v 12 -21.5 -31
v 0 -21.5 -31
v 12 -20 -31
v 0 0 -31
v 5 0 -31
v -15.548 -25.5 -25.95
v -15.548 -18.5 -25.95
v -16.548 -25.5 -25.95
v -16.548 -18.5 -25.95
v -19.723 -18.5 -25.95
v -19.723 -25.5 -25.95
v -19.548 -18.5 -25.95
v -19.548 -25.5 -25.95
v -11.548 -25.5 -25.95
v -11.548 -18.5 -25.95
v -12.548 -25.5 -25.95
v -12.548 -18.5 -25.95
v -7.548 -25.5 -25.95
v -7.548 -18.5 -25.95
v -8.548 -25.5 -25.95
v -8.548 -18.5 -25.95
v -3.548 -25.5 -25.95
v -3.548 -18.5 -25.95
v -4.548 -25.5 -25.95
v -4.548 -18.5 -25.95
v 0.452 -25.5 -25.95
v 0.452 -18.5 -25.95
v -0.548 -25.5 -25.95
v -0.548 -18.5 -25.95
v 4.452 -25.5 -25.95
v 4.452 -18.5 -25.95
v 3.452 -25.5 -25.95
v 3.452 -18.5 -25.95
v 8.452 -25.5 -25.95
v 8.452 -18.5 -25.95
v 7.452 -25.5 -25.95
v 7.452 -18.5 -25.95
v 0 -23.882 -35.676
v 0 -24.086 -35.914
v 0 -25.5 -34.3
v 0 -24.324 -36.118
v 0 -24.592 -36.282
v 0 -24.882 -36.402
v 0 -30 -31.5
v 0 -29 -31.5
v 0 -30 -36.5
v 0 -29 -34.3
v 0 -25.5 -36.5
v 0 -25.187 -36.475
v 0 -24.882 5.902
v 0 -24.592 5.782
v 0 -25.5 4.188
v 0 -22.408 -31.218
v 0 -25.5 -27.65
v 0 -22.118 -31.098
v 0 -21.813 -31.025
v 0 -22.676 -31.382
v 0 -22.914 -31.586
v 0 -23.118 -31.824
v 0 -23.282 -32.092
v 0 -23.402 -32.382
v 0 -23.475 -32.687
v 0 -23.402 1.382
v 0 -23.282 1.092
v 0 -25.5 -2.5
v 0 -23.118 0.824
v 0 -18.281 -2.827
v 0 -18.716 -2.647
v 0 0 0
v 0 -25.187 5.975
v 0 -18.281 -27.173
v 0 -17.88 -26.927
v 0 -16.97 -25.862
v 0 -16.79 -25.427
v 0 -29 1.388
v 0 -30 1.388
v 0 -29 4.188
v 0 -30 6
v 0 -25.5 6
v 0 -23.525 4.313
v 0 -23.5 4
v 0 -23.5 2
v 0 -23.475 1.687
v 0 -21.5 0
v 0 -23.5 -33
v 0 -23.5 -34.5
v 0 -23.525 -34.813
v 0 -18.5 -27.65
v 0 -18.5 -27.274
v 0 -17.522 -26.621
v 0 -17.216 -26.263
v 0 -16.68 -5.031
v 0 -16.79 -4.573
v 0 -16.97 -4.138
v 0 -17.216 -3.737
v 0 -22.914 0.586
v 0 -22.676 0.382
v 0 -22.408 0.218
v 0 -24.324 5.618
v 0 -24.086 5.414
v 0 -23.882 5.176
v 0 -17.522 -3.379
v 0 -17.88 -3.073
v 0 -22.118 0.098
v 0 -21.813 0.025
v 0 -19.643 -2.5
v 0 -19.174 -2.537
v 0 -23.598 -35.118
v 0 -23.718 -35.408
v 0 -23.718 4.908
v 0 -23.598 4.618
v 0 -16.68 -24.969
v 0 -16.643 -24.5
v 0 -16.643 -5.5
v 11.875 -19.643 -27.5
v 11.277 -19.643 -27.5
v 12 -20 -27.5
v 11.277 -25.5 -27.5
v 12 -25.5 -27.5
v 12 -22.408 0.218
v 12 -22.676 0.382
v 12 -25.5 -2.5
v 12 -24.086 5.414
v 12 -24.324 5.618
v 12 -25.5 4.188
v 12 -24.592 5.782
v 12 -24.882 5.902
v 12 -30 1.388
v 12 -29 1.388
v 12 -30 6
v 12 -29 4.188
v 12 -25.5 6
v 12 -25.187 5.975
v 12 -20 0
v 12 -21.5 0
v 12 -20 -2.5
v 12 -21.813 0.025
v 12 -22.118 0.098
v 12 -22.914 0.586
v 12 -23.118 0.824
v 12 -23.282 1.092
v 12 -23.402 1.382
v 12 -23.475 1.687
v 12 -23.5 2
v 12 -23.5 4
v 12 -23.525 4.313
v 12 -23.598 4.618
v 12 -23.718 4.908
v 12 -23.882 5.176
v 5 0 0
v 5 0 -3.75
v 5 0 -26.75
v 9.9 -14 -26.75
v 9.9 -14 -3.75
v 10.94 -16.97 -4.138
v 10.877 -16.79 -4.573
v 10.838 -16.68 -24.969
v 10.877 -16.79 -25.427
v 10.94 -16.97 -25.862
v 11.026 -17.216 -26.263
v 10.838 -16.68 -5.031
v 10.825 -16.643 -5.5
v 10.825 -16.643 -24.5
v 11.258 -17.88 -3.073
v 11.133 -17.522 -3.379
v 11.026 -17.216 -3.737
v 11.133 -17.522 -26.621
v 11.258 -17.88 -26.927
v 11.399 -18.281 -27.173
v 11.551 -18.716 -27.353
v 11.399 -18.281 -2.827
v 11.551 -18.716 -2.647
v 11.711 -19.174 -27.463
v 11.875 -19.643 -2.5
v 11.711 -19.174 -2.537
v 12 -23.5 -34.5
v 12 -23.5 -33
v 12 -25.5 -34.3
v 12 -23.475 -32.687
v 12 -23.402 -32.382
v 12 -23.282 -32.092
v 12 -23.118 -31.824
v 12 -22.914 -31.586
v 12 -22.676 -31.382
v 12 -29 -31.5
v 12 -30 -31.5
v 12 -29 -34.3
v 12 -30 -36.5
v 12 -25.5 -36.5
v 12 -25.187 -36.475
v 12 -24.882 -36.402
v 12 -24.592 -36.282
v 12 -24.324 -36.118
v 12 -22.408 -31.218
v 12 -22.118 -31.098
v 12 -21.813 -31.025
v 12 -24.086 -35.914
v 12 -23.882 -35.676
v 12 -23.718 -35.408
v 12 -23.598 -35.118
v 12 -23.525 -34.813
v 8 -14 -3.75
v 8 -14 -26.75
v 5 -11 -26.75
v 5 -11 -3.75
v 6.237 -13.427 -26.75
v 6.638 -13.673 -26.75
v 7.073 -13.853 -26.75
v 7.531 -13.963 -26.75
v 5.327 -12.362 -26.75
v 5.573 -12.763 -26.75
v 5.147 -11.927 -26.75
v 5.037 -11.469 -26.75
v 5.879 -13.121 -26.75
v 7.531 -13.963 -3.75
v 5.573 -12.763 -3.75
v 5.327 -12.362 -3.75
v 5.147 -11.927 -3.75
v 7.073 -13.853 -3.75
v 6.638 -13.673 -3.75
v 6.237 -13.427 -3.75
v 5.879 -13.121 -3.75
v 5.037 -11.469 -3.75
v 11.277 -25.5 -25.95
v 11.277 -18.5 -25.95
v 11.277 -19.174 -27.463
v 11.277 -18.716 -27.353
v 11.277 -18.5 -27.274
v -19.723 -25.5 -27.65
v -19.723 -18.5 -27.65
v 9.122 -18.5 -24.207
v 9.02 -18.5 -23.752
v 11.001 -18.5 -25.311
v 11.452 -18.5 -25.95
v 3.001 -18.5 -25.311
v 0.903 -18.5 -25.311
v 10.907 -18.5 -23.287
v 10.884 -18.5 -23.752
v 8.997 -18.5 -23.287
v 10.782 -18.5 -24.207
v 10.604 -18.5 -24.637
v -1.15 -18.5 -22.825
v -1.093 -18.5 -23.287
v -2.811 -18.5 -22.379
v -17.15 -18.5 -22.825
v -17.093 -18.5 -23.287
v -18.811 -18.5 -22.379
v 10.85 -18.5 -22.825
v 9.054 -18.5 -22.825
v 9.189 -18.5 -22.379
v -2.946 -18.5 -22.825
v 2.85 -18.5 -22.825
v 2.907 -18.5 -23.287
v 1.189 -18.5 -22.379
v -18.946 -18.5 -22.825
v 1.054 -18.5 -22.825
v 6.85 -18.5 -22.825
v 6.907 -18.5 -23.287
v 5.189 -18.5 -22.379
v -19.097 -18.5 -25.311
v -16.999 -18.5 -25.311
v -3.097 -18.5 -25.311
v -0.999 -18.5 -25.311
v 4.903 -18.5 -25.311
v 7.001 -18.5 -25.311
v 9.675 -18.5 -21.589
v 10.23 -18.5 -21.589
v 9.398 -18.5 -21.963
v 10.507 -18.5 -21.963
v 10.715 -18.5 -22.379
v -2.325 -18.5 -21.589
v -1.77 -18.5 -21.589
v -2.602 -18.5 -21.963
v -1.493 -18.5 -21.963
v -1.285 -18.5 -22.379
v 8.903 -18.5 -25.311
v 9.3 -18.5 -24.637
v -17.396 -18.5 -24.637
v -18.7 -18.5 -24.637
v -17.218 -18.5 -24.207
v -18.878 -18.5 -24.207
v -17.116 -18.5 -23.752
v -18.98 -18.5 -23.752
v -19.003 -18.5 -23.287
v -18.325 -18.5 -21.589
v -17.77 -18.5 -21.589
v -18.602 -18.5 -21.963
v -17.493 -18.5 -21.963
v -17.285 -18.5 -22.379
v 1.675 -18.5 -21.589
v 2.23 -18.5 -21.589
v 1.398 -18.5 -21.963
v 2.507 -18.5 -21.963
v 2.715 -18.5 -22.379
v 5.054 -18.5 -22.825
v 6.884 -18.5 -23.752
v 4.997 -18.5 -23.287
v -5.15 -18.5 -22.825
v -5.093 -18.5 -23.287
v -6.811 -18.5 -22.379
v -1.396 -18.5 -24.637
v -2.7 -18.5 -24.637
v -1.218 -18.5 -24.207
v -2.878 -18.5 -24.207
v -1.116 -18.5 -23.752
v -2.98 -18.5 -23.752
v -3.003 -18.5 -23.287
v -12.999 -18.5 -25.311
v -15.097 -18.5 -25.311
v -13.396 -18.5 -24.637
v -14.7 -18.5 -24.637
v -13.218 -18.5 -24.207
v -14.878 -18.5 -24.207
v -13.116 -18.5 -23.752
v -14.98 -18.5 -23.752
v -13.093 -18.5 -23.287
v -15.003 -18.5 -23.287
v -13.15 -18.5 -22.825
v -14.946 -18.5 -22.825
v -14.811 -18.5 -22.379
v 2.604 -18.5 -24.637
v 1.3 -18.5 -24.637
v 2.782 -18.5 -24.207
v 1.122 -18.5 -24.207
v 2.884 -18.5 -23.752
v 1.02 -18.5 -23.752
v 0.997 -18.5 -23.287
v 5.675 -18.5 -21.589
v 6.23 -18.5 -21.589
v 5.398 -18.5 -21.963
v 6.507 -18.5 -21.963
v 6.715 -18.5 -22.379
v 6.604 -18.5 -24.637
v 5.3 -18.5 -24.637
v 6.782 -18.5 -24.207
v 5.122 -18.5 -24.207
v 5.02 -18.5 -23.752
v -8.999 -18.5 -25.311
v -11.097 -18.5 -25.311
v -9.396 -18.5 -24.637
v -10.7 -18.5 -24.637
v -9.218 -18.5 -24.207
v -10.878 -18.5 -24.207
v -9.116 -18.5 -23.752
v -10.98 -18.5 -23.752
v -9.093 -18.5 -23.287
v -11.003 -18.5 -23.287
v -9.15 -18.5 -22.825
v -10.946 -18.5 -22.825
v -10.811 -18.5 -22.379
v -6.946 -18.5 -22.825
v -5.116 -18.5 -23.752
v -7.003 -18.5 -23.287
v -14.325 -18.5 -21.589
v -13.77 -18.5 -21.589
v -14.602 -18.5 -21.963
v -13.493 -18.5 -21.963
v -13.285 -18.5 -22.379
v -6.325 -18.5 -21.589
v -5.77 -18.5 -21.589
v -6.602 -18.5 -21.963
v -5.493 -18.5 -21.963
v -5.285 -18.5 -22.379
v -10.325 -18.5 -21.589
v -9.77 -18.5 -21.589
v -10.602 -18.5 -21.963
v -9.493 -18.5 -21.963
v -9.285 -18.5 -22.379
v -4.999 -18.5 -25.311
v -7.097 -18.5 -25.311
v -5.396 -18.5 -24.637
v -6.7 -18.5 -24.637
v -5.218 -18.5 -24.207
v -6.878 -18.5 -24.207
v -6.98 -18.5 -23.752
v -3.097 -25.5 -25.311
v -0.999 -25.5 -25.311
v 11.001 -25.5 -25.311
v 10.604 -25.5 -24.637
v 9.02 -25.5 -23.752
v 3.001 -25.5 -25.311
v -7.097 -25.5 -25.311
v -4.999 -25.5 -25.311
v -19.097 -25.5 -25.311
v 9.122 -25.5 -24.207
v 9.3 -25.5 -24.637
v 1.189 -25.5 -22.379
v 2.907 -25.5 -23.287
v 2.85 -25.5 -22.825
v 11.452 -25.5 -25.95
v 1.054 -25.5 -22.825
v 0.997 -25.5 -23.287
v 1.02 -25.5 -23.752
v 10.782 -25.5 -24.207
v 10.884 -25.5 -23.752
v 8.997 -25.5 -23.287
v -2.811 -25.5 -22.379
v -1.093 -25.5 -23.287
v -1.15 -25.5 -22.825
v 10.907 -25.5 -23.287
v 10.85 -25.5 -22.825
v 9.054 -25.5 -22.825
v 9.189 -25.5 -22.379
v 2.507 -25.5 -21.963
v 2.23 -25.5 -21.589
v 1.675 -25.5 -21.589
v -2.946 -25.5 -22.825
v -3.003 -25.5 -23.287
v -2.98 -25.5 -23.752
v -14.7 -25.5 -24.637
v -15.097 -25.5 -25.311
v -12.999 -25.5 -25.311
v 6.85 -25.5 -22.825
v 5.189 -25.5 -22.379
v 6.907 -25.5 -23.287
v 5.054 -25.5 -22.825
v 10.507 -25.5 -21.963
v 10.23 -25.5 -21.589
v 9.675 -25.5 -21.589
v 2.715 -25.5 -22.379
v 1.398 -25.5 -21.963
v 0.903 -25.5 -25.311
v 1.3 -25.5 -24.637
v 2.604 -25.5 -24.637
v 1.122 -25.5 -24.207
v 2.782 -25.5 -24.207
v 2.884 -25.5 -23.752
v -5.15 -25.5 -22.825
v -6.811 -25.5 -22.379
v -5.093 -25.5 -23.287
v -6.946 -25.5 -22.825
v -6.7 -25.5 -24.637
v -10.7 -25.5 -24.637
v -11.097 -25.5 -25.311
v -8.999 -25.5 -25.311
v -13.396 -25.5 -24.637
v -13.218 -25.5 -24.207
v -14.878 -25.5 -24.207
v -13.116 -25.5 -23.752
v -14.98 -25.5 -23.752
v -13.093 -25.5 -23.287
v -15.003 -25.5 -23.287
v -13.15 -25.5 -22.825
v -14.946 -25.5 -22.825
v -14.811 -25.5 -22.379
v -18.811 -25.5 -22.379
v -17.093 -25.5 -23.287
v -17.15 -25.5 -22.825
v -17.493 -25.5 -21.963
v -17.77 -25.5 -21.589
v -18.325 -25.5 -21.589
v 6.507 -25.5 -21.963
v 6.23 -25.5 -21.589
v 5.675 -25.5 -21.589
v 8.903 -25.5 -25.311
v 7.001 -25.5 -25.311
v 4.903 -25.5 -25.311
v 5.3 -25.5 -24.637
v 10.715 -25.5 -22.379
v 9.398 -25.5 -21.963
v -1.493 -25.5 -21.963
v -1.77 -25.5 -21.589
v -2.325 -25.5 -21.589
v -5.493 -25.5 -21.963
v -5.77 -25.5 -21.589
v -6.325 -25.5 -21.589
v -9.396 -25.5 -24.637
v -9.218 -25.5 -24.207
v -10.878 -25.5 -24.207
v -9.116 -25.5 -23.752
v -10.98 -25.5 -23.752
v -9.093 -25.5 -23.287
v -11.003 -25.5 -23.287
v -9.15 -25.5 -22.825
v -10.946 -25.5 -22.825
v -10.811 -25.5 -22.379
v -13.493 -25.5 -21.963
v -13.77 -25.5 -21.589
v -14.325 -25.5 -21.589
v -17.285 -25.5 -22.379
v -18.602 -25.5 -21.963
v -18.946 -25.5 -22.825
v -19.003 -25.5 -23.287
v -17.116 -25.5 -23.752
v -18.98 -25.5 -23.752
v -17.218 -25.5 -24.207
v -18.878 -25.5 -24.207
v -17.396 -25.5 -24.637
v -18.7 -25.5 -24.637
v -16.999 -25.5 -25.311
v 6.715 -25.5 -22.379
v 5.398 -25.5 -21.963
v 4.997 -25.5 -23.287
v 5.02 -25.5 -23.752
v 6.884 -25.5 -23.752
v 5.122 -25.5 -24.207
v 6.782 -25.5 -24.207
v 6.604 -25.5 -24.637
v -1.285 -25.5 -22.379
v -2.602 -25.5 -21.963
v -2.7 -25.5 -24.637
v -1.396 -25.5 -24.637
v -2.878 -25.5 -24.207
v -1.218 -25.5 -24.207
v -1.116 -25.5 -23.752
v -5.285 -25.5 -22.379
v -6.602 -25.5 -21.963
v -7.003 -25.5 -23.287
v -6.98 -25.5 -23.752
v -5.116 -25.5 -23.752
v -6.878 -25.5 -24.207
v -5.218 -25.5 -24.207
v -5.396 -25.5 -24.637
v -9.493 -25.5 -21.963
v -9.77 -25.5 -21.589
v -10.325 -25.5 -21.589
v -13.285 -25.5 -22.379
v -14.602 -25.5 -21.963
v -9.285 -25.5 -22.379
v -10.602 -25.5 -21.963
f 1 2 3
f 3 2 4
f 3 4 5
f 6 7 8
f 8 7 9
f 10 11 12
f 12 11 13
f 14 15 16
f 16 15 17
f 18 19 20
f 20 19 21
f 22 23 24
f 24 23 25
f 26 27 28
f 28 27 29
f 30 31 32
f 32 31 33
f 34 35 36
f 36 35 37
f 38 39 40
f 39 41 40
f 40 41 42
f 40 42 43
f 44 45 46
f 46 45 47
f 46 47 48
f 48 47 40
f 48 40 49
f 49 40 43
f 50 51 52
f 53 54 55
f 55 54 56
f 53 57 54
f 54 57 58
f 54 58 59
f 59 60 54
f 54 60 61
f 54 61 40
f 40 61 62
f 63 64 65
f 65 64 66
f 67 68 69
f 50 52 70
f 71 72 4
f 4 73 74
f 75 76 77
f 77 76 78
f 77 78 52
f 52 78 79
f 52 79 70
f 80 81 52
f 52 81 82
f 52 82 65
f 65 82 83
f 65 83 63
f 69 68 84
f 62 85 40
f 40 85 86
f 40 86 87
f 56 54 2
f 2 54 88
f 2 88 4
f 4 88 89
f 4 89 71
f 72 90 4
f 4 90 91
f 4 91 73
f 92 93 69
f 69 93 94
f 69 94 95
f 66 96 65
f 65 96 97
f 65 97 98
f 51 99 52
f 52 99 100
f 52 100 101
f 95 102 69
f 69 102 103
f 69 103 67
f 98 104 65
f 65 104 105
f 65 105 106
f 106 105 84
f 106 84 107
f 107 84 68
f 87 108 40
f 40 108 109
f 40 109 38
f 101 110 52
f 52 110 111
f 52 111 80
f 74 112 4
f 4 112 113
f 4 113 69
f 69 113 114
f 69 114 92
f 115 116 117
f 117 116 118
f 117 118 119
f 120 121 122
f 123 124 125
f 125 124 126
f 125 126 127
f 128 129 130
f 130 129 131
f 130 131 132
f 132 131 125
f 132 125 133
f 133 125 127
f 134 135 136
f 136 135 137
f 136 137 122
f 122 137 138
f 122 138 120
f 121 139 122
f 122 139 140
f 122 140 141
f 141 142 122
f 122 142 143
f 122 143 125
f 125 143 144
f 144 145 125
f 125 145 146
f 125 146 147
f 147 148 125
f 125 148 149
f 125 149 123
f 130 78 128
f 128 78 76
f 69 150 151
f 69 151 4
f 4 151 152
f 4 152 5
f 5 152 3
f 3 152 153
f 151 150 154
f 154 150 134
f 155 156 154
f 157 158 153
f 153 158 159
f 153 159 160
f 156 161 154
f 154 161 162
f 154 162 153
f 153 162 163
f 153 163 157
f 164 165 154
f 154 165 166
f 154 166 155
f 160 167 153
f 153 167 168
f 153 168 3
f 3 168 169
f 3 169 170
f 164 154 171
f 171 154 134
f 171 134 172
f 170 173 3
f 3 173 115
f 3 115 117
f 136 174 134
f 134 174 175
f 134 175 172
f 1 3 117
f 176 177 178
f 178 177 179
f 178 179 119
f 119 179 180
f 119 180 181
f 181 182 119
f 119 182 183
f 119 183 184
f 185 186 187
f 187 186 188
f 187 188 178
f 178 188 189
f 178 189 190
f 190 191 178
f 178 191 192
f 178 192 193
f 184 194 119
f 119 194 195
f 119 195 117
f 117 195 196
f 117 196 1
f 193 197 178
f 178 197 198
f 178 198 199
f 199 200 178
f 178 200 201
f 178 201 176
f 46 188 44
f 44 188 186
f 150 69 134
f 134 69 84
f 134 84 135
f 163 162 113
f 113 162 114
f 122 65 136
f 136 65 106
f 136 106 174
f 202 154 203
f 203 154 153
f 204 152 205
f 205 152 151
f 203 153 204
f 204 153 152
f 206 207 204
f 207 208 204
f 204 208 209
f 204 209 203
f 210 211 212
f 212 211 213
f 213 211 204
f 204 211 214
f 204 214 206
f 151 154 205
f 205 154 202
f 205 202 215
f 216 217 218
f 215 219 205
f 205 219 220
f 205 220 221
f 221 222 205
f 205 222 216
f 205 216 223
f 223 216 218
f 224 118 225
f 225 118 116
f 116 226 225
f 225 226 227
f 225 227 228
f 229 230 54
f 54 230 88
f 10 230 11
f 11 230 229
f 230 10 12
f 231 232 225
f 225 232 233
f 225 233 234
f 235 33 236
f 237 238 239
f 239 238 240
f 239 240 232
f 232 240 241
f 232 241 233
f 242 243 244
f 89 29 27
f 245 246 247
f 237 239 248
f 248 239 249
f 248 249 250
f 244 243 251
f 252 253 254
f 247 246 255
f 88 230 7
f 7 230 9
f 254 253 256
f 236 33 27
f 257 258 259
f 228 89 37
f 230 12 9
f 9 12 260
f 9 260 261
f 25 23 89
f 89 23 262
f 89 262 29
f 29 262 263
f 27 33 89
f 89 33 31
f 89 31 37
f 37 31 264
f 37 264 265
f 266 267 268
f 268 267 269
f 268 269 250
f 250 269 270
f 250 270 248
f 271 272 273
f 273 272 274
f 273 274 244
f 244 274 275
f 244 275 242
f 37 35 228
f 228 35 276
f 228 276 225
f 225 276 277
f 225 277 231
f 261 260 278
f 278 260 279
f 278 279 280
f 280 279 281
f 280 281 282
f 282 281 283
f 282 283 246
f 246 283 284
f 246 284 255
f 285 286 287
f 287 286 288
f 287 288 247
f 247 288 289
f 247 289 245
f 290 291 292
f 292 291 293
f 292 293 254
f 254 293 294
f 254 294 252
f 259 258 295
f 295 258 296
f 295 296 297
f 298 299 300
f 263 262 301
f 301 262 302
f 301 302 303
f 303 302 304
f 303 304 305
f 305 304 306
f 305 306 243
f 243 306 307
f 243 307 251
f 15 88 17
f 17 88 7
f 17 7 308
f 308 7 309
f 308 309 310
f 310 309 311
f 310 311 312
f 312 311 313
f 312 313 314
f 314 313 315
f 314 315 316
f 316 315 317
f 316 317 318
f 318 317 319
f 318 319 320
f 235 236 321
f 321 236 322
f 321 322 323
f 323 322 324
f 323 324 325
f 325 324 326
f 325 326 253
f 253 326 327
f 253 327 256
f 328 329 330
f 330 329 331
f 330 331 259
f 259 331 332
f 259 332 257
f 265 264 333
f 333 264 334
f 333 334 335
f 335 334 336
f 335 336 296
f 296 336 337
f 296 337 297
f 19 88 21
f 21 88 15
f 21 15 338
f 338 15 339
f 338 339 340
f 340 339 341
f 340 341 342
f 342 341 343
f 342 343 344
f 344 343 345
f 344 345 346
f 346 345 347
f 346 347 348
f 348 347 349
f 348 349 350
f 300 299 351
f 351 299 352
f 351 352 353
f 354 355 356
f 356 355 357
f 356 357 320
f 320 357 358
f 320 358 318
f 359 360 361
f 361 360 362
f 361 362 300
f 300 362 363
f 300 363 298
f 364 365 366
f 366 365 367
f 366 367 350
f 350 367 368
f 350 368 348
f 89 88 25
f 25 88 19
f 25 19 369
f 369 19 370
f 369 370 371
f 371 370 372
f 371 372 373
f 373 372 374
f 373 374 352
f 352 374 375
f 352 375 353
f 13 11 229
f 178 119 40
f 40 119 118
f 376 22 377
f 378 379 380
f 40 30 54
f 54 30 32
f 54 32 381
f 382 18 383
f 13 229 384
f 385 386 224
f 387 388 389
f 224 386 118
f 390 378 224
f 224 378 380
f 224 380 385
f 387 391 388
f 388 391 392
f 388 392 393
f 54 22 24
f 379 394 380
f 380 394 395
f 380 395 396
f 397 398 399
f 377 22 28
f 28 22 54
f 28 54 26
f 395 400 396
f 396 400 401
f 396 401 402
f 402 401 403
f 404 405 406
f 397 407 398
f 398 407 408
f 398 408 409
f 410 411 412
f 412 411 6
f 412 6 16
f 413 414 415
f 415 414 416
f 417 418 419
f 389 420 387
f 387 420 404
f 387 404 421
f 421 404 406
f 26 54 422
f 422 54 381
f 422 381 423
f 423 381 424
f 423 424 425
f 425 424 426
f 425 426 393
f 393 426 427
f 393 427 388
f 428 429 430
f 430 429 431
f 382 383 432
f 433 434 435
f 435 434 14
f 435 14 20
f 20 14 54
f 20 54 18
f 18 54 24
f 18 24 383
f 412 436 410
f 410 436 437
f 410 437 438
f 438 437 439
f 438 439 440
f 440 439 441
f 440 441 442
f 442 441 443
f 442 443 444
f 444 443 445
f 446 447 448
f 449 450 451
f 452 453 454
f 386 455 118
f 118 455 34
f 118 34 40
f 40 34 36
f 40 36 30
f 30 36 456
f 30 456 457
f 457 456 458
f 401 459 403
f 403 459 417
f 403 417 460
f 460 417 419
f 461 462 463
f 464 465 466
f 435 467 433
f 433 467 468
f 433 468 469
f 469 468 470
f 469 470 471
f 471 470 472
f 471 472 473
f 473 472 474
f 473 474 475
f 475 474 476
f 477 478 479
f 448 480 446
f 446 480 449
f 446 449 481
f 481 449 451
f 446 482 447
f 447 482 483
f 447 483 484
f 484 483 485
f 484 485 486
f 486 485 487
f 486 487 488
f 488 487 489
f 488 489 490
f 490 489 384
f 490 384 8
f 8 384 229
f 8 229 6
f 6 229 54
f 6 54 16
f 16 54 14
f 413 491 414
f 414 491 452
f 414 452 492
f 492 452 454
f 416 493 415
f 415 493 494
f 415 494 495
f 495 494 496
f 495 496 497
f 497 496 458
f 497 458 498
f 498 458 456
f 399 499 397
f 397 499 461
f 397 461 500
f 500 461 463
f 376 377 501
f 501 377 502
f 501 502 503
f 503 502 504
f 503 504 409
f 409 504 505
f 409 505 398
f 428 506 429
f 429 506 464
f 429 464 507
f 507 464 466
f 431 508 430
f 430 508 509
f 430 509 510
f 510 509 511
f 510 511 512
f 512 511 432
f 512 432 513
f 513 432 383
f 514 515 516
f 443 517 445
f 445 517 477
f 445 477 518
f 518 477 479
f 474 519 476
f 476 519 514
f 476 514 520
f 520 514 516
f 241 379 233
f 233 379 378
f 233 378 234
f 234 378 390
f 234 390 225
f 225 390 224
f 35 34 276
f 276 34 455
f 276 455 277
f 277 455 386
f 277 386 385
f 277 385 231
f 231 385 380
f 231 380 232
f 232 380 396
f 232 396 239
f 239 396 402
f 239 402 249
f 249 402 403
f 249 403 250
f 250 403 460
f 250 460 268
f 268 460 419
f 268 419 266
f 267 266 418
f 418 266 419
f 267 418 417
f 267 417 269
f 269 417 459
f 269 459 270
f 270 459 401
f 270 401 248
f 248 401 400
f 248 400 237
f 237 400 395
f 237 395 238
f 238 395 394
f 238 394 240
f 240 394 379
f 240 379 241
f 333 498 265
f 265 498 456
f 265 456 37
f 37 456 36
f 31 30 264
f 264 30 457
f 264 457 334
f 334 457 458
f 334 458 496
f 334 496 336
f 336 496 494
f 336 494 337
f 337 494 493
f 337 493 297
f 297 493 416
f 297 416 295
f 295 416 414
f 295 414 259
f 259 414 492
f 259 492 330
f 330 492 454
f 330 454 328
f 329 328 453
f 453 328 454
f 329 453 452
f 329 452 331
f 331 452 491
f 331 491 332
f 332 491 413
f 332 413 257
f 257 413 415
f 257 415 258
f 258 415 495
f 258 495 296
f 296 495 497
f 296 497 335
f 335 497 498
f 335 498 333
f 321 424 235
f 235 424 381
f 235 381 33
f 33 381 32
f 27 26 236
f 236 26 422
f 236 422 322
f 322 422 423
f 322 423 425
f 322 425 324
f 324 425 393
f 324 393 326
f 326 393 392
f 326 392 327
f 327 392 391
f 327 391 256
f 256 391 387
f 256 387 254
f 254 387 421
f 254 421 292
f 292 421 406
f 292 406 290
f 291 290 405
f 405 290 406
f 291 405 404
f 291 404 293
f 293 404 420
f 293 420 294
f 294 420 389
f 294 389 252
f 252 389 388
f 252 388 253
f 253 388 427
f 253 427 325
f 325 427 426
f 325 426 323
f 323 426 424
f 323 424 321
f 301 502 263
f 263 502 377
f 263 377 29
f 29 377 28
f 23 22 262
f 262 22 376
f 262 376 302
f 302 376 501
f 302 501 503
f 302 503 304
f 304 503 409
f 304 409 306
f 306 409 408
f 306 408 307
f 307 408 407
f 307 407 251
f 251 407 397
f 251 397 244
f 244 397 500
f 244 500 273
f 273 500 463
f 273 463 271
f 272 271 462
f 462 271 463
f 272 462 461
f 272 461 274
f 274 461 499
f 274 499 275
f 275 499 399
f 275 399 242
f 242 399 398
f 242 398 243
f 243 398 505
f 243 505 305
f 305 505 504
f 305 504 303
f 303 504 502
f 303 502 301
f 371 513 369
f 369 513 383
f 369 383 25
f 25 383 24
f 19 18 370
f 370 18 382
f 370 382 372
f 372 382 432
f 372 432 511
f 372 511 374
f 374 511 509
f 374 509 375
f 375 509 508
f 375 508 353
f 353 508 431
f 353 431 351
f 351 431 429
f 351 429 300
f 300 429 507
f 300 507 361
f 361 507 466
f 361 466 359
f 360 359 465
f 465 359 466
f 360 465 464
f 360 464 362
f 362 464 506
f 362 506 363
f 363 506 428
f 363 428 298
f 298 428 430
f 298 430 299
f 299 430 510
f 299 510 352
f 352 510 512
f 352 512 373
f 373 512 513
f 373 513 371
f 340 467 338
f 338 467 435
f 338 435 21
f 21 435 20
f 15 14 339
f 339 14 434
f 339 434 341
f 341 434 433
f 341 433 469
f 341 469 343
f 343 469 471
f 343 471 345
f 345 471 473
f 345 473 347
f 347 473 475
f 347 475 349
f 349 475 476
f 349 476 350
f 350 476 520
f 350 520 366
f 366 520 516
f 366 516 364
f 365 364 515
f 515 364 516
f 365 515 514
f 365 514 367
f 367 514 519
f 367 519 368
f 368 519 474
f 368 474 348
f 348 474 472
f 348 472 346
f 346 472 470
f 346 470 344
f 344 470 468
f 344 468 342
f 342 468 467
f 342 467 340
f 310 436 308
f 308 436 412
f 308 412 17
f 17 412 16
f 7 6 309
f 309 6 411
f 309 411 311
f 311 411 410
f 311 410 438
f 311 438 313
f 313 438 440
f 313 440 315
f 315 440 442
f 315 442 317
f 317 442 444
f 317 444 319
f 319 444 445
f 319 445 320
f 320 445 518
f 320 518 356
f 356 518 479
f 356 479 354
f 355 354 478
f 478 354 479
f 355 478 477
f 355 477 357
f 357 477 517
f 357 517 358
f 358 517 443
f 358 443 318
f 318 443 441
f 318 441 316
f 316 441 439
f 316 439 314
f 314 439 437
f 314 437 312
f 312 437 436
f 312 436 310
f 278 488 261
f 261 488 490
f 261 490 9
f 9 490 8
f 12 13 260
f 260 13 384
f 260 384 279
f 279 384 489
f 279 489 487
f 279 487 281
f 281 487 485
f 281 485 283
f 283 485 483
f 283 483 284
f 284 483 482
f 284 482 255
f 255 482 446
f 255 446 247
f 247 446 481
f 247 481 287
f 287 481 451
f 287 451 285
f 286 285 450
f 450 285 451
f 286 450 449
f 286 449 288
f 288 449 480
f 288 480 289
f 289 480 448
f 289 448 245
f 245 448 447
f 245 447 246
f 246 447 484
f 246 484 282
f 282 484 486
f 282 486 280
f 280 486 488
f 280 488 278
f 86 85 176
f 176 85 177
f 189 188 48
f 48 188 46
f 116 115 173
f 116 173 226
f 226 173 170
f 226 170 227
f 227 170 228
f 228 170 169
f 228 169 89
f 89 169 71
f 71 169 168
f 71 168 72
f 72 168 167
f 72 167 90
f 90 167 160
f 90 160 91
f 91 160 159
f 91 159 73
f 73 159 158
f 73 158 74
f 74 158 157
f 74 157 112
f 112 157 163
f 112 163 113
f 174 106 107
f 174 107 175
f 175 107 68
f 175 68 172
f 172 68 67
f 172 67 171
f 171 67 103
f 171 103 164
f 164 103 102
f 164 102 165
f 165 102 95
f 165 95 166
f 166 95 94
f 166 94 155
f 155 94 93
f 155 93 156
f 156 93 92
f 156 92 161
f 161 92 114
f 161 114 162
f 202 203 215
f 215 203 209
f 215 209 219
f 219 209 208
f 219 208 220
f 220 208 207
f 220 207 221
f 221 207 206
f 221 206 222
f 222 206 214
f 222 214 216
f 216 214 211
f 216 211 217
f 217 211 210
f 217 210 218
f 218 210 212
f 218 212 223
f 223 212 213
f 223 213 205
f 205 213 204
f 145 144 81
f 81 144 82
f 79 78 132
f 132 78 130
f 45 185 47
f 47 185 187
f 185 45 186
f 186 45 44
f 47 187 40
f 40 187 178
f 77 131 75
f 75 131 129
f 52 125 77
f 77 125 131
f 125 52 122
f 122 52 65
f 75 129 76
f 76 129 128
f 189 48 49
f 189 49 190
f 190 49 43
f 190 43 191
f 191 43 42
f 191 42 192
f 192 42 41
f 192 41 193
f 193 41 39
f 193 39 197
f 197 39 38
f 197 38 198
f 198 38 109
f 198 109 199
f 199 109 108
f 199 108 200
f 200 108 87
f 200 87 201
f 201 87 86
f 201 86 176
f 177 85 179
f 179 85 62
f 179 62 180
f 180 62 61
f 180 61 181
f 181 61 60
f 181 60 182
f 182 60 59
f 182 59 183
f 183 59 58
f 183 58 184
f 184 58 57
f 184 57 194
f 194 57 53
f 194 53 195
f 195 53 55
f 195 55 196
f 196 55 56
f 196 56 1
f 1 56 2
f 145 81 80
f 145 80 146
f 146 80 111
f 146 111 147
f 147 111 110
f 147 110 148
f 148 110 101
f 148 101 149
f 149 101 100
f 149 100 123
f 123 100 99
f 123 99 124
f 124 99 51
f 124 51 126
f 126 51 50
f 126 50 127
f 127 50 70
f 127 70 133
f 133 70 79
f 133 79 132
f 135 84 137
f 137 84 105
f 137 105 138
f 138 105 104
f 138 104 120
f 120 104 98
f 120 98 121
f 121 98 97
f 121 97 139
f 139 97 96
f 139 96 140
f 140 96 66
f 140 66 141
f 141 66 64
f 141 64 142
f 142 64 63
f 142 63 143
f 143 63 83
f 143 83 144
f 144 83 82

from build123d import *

# Parameters (mm, degrees)
BOSS_EXTRUDE1_DEPTH = 31
SKETCH4_W           = 25
SKETCH4_H           = 15
CUT_EXTRUDE2_DEPTH  = 25
CUT_EXTRUDE4_DEPTH  = 11.5
SKETCH7_W           = 31
SKETCH7_H           = 1.7
BOSS_EXTRUDE3_DEPTH = 7
BOSS_EXTRUDE4_DEPTH = 7
LPATTERN1_COUNT     = 8
LPATTERN1_PITCH     = 4
SKETCH11_W          = 12
SKETCH11_H          = 6.5
BOSS_EXTRUDE5_DEPTH = 5.5
FILLET5_R           = 3
SKETCH12_W          = 12
SKETCH12_H          = 6.5
BOSS_EXTRUDE6_DEPTH = 6
CUT_EXTRUDE5_DEPTH  = 12
FILLET6_R           = 2


with BuildPart() as part:
    # Sketch1 → Boss-Extrude1 (new body)
    with BuildSketch(Plane.XY):
        Polygon((0, 0), (0, -30), (12, -30), (12, -20), (5, 0), align=None)
    extrude(amount=-BOSS_EXTRUDE1_DEPTH)

    # Sketch4 → Cut-Extrude2 (cut)
    with BuildSketch(Plane.ZY):
        with Locations((-15, -24.143402944)):
            Rectangle(SKETCH4_W, SKETCH4_H)
    extrude(amount=-CUT_EXTRUDE2_DEPTH, mode=Mode.SUBTRACT)

    # Sketch6 → Cut-Extrude4 (cut, symmetric)
    with BuildSketch(Plane.XY.offset(-15.25)):
        Polygon((5, 0), (5, -14), (9.9, -14), align=None)
    extrude(amount=CUT_EXTRUDE4_DEPTH, both=True, mode=Mode.SUBTRACT)

    # Sketch7 → Boss-Extrude3 (add)
    with BuildSketch(Plane(origin=(0, -25.5, 0), x_dir=(1, 0, 0), z_dir=(0, 1, 0))):
        with Locations((-4.2231607, 26.8)):
            Rectangle(SKETCH7_W, SKETCH7_H)
    extrude(amount=BOSS_EXTRUDE3_DEPTH)

    # Sketch10 → Boss-Extrude4 (add)
    with BuildSketch(Plane(origin=(0, -25.5, 0), x_dir=(1, 0, 0), z_dir=(0, 1, 0))):
        with BuildLine():
            Line((10.229764516, 21.588776044), (9.674536509, 21.588776044))
            ThreePointArc((9.674536509, 21.588776044), (9.015771799, 23.054925169), (9.300491414, 24.636854036))
            ThreePointArc((9.300491414, 24.636854036), (8.903062553, 25.310703075), (8.452150513, 25.95))
            Line((8.452150513, 25.95), (11.452150513, 25.95))
            ThreePointArc((11.452150513, 25.95), (11.001238473, 25.310703075), (10.603809612, 24.636854036))
            ThreePointArc((10.603809612, 24.636854036), (10.888529227, 23.054925169), (10.229764516, 21.588776044))
        make_face()
    boss_extrude4 = extrude(amount=BOSS_EXTRUDE4_DEPTH)

    # LPattern1: Boss-Extrude4 ×8
    with Locations(*[(-i * LPATTERN1_PITCH, 0, 0) for i in range(1, LPATTERN1_COUNT)]):
        add(boss_extrude4)

    # Sketch11 → Boss-Extrude5 (add)
    with BuildSketch(Plane(origin=(0, 0, -31), x_dir=(-1, 0, 0), z_dir=(0, 0, -1))):
        with Locations((-6, -26.75)):
            Rectangle(SKETCH11_W, SKETCH11_H)
    extrude(amount=BOSS_EXTRUDE5_DEPTH)

    # Fillet5
    # the kernel refuses this fillet: 3 mm, written as the material it adds along each edge
    with BuildSketch(Plane(origin=(5, -14, -34.25), x_dir=(0, 1, 0), z_dir=(0, 0, 1))) as fillet5_piece_1_section:
        with BuildLine():
            CenterArc((FILLET5_R, -FILLET5_R), FILLET5_R, 90, 90)
            Line((0, -FILLET5_R), (0, 0))
            Line((0, 0), (FILLET5_R, 0))
        make_face()
    fillet5_piece_1 = extrude(amount=38, mode=Mode.PRIVATE)
    fillet5_piece_1 = split(fillet5_piece_1, bisect_by=Plane(origin=(5.670103817, -13.329896183, -31), z_dir=(0, 0, 1)), keep=Keep.TOP, mode=Mode.PRIVATE)
    fillet5_piece_1 = split(fillet5_piece_1, bisect_by=Plane(origin=(5.670103817, -13.329896183, 0), z_dir=(0, 0, -1)), keep=Keep.TOP, mode=Mode.PRIVATE)
    add(fillet5_piece_1)
    with BuildSketch(Plane(origin=(0, -16.643402944, -2.5), x_dir=(0, -1, 0), z_dir=(1, 0, 0))) as fillet5_piece_2_section:
        with BuildLine():
            CenterArc((FILLET5_R, FILLET5_R), FILLET5_R, 180, 90)
            Line((0, FILLET5_R), (0, 0))
            Line((0, 0), (FILLET5_R, 0))
        make_face()
    fillet5_piece_2 = extrude(amount=18.32519103, mode=Mode.PRIVATE)
    fillet5_piece_2 = split(fillet5_piece_2, bisect_by=Plane(origin=(10.459559167, -15.598740478, -3.164212855), z_dir=(-0.9438583563660173, -0.33035042472810633, 0)), keep=Keep.TOP, mode=Mode.PRIVATE)
    add(fillet5_piece_2)
    with BuildSketch(Plane(origin=(0, -16.643402944, -27.5), x_dir=(0, 0, 1), z_dir=(1, 0, 0))) as fillet5_piece_3_section:
        with BuildLine():
            CenterArc((FILLET5_R, FILLET5_R), FILLET5_R, 180, 90)
            Line((0, FILLET5_R), (0, 0))
            Line((0, 0), (FILLET5_R, 0))
        make_face()
    fillet5_piece_3 = extrude(amount=18.32519103, mode=Mode.PRIVATE)
    fillet5_piece_3 = split(fillet5_piece_3, bisect_by=Plane(origin=(10.435387917, -15.529679764, -26.806522223), z_dir=(-0.9438583563660173, -0.33035042472810633, 0)), keep=Keep.TOP, mode=Mode.PRIVATE)
    add(fillet5_piece_3)

    # Sketch12 → Boss-Extrude6 (add)
    with BuildSketch(Plane.XY):
        with Locations((6, -26.75)):
            Rectangle(SKETCH12_W, SKETCH12_H)
    extrude(amount=BOSS_EXTRUDE6_DEPTH)

    # Sketch13 → Cut-Extrude5 (cut)
    with BuildSketch(Plane.ZY):
        Polygon((-34.3, -25.5), (-27.5, -25.5), (-27.5, -32.069121633), (-31.5, -32.069121633), (-31.5, -29), (-34.3, -29), align=None)
        Polygon((1.387837299, -29), (4.187837299, -29), (4.187837299, -25.5), (-2.612162701, -25.5), (-2.612162701, -32.069121633), (1.387837299, -32.069121633), align=None)
    extrude(amount=-CUT_EXTRUDE5_DEPTH, mode=Mode.SUBTRACT)

    # Fillet6
    fillet6_edges = [part.edges().sort_by_distance(p)[0] for p in [
        (6, -23.5, -31),
        (6, -23.5, -36.5),
        (6, -23.5, 0),
        (6, -23.5, 6),
    ]]
    fillet(fillet6_edges, radius=FILLET6_R)


solid = part.part
